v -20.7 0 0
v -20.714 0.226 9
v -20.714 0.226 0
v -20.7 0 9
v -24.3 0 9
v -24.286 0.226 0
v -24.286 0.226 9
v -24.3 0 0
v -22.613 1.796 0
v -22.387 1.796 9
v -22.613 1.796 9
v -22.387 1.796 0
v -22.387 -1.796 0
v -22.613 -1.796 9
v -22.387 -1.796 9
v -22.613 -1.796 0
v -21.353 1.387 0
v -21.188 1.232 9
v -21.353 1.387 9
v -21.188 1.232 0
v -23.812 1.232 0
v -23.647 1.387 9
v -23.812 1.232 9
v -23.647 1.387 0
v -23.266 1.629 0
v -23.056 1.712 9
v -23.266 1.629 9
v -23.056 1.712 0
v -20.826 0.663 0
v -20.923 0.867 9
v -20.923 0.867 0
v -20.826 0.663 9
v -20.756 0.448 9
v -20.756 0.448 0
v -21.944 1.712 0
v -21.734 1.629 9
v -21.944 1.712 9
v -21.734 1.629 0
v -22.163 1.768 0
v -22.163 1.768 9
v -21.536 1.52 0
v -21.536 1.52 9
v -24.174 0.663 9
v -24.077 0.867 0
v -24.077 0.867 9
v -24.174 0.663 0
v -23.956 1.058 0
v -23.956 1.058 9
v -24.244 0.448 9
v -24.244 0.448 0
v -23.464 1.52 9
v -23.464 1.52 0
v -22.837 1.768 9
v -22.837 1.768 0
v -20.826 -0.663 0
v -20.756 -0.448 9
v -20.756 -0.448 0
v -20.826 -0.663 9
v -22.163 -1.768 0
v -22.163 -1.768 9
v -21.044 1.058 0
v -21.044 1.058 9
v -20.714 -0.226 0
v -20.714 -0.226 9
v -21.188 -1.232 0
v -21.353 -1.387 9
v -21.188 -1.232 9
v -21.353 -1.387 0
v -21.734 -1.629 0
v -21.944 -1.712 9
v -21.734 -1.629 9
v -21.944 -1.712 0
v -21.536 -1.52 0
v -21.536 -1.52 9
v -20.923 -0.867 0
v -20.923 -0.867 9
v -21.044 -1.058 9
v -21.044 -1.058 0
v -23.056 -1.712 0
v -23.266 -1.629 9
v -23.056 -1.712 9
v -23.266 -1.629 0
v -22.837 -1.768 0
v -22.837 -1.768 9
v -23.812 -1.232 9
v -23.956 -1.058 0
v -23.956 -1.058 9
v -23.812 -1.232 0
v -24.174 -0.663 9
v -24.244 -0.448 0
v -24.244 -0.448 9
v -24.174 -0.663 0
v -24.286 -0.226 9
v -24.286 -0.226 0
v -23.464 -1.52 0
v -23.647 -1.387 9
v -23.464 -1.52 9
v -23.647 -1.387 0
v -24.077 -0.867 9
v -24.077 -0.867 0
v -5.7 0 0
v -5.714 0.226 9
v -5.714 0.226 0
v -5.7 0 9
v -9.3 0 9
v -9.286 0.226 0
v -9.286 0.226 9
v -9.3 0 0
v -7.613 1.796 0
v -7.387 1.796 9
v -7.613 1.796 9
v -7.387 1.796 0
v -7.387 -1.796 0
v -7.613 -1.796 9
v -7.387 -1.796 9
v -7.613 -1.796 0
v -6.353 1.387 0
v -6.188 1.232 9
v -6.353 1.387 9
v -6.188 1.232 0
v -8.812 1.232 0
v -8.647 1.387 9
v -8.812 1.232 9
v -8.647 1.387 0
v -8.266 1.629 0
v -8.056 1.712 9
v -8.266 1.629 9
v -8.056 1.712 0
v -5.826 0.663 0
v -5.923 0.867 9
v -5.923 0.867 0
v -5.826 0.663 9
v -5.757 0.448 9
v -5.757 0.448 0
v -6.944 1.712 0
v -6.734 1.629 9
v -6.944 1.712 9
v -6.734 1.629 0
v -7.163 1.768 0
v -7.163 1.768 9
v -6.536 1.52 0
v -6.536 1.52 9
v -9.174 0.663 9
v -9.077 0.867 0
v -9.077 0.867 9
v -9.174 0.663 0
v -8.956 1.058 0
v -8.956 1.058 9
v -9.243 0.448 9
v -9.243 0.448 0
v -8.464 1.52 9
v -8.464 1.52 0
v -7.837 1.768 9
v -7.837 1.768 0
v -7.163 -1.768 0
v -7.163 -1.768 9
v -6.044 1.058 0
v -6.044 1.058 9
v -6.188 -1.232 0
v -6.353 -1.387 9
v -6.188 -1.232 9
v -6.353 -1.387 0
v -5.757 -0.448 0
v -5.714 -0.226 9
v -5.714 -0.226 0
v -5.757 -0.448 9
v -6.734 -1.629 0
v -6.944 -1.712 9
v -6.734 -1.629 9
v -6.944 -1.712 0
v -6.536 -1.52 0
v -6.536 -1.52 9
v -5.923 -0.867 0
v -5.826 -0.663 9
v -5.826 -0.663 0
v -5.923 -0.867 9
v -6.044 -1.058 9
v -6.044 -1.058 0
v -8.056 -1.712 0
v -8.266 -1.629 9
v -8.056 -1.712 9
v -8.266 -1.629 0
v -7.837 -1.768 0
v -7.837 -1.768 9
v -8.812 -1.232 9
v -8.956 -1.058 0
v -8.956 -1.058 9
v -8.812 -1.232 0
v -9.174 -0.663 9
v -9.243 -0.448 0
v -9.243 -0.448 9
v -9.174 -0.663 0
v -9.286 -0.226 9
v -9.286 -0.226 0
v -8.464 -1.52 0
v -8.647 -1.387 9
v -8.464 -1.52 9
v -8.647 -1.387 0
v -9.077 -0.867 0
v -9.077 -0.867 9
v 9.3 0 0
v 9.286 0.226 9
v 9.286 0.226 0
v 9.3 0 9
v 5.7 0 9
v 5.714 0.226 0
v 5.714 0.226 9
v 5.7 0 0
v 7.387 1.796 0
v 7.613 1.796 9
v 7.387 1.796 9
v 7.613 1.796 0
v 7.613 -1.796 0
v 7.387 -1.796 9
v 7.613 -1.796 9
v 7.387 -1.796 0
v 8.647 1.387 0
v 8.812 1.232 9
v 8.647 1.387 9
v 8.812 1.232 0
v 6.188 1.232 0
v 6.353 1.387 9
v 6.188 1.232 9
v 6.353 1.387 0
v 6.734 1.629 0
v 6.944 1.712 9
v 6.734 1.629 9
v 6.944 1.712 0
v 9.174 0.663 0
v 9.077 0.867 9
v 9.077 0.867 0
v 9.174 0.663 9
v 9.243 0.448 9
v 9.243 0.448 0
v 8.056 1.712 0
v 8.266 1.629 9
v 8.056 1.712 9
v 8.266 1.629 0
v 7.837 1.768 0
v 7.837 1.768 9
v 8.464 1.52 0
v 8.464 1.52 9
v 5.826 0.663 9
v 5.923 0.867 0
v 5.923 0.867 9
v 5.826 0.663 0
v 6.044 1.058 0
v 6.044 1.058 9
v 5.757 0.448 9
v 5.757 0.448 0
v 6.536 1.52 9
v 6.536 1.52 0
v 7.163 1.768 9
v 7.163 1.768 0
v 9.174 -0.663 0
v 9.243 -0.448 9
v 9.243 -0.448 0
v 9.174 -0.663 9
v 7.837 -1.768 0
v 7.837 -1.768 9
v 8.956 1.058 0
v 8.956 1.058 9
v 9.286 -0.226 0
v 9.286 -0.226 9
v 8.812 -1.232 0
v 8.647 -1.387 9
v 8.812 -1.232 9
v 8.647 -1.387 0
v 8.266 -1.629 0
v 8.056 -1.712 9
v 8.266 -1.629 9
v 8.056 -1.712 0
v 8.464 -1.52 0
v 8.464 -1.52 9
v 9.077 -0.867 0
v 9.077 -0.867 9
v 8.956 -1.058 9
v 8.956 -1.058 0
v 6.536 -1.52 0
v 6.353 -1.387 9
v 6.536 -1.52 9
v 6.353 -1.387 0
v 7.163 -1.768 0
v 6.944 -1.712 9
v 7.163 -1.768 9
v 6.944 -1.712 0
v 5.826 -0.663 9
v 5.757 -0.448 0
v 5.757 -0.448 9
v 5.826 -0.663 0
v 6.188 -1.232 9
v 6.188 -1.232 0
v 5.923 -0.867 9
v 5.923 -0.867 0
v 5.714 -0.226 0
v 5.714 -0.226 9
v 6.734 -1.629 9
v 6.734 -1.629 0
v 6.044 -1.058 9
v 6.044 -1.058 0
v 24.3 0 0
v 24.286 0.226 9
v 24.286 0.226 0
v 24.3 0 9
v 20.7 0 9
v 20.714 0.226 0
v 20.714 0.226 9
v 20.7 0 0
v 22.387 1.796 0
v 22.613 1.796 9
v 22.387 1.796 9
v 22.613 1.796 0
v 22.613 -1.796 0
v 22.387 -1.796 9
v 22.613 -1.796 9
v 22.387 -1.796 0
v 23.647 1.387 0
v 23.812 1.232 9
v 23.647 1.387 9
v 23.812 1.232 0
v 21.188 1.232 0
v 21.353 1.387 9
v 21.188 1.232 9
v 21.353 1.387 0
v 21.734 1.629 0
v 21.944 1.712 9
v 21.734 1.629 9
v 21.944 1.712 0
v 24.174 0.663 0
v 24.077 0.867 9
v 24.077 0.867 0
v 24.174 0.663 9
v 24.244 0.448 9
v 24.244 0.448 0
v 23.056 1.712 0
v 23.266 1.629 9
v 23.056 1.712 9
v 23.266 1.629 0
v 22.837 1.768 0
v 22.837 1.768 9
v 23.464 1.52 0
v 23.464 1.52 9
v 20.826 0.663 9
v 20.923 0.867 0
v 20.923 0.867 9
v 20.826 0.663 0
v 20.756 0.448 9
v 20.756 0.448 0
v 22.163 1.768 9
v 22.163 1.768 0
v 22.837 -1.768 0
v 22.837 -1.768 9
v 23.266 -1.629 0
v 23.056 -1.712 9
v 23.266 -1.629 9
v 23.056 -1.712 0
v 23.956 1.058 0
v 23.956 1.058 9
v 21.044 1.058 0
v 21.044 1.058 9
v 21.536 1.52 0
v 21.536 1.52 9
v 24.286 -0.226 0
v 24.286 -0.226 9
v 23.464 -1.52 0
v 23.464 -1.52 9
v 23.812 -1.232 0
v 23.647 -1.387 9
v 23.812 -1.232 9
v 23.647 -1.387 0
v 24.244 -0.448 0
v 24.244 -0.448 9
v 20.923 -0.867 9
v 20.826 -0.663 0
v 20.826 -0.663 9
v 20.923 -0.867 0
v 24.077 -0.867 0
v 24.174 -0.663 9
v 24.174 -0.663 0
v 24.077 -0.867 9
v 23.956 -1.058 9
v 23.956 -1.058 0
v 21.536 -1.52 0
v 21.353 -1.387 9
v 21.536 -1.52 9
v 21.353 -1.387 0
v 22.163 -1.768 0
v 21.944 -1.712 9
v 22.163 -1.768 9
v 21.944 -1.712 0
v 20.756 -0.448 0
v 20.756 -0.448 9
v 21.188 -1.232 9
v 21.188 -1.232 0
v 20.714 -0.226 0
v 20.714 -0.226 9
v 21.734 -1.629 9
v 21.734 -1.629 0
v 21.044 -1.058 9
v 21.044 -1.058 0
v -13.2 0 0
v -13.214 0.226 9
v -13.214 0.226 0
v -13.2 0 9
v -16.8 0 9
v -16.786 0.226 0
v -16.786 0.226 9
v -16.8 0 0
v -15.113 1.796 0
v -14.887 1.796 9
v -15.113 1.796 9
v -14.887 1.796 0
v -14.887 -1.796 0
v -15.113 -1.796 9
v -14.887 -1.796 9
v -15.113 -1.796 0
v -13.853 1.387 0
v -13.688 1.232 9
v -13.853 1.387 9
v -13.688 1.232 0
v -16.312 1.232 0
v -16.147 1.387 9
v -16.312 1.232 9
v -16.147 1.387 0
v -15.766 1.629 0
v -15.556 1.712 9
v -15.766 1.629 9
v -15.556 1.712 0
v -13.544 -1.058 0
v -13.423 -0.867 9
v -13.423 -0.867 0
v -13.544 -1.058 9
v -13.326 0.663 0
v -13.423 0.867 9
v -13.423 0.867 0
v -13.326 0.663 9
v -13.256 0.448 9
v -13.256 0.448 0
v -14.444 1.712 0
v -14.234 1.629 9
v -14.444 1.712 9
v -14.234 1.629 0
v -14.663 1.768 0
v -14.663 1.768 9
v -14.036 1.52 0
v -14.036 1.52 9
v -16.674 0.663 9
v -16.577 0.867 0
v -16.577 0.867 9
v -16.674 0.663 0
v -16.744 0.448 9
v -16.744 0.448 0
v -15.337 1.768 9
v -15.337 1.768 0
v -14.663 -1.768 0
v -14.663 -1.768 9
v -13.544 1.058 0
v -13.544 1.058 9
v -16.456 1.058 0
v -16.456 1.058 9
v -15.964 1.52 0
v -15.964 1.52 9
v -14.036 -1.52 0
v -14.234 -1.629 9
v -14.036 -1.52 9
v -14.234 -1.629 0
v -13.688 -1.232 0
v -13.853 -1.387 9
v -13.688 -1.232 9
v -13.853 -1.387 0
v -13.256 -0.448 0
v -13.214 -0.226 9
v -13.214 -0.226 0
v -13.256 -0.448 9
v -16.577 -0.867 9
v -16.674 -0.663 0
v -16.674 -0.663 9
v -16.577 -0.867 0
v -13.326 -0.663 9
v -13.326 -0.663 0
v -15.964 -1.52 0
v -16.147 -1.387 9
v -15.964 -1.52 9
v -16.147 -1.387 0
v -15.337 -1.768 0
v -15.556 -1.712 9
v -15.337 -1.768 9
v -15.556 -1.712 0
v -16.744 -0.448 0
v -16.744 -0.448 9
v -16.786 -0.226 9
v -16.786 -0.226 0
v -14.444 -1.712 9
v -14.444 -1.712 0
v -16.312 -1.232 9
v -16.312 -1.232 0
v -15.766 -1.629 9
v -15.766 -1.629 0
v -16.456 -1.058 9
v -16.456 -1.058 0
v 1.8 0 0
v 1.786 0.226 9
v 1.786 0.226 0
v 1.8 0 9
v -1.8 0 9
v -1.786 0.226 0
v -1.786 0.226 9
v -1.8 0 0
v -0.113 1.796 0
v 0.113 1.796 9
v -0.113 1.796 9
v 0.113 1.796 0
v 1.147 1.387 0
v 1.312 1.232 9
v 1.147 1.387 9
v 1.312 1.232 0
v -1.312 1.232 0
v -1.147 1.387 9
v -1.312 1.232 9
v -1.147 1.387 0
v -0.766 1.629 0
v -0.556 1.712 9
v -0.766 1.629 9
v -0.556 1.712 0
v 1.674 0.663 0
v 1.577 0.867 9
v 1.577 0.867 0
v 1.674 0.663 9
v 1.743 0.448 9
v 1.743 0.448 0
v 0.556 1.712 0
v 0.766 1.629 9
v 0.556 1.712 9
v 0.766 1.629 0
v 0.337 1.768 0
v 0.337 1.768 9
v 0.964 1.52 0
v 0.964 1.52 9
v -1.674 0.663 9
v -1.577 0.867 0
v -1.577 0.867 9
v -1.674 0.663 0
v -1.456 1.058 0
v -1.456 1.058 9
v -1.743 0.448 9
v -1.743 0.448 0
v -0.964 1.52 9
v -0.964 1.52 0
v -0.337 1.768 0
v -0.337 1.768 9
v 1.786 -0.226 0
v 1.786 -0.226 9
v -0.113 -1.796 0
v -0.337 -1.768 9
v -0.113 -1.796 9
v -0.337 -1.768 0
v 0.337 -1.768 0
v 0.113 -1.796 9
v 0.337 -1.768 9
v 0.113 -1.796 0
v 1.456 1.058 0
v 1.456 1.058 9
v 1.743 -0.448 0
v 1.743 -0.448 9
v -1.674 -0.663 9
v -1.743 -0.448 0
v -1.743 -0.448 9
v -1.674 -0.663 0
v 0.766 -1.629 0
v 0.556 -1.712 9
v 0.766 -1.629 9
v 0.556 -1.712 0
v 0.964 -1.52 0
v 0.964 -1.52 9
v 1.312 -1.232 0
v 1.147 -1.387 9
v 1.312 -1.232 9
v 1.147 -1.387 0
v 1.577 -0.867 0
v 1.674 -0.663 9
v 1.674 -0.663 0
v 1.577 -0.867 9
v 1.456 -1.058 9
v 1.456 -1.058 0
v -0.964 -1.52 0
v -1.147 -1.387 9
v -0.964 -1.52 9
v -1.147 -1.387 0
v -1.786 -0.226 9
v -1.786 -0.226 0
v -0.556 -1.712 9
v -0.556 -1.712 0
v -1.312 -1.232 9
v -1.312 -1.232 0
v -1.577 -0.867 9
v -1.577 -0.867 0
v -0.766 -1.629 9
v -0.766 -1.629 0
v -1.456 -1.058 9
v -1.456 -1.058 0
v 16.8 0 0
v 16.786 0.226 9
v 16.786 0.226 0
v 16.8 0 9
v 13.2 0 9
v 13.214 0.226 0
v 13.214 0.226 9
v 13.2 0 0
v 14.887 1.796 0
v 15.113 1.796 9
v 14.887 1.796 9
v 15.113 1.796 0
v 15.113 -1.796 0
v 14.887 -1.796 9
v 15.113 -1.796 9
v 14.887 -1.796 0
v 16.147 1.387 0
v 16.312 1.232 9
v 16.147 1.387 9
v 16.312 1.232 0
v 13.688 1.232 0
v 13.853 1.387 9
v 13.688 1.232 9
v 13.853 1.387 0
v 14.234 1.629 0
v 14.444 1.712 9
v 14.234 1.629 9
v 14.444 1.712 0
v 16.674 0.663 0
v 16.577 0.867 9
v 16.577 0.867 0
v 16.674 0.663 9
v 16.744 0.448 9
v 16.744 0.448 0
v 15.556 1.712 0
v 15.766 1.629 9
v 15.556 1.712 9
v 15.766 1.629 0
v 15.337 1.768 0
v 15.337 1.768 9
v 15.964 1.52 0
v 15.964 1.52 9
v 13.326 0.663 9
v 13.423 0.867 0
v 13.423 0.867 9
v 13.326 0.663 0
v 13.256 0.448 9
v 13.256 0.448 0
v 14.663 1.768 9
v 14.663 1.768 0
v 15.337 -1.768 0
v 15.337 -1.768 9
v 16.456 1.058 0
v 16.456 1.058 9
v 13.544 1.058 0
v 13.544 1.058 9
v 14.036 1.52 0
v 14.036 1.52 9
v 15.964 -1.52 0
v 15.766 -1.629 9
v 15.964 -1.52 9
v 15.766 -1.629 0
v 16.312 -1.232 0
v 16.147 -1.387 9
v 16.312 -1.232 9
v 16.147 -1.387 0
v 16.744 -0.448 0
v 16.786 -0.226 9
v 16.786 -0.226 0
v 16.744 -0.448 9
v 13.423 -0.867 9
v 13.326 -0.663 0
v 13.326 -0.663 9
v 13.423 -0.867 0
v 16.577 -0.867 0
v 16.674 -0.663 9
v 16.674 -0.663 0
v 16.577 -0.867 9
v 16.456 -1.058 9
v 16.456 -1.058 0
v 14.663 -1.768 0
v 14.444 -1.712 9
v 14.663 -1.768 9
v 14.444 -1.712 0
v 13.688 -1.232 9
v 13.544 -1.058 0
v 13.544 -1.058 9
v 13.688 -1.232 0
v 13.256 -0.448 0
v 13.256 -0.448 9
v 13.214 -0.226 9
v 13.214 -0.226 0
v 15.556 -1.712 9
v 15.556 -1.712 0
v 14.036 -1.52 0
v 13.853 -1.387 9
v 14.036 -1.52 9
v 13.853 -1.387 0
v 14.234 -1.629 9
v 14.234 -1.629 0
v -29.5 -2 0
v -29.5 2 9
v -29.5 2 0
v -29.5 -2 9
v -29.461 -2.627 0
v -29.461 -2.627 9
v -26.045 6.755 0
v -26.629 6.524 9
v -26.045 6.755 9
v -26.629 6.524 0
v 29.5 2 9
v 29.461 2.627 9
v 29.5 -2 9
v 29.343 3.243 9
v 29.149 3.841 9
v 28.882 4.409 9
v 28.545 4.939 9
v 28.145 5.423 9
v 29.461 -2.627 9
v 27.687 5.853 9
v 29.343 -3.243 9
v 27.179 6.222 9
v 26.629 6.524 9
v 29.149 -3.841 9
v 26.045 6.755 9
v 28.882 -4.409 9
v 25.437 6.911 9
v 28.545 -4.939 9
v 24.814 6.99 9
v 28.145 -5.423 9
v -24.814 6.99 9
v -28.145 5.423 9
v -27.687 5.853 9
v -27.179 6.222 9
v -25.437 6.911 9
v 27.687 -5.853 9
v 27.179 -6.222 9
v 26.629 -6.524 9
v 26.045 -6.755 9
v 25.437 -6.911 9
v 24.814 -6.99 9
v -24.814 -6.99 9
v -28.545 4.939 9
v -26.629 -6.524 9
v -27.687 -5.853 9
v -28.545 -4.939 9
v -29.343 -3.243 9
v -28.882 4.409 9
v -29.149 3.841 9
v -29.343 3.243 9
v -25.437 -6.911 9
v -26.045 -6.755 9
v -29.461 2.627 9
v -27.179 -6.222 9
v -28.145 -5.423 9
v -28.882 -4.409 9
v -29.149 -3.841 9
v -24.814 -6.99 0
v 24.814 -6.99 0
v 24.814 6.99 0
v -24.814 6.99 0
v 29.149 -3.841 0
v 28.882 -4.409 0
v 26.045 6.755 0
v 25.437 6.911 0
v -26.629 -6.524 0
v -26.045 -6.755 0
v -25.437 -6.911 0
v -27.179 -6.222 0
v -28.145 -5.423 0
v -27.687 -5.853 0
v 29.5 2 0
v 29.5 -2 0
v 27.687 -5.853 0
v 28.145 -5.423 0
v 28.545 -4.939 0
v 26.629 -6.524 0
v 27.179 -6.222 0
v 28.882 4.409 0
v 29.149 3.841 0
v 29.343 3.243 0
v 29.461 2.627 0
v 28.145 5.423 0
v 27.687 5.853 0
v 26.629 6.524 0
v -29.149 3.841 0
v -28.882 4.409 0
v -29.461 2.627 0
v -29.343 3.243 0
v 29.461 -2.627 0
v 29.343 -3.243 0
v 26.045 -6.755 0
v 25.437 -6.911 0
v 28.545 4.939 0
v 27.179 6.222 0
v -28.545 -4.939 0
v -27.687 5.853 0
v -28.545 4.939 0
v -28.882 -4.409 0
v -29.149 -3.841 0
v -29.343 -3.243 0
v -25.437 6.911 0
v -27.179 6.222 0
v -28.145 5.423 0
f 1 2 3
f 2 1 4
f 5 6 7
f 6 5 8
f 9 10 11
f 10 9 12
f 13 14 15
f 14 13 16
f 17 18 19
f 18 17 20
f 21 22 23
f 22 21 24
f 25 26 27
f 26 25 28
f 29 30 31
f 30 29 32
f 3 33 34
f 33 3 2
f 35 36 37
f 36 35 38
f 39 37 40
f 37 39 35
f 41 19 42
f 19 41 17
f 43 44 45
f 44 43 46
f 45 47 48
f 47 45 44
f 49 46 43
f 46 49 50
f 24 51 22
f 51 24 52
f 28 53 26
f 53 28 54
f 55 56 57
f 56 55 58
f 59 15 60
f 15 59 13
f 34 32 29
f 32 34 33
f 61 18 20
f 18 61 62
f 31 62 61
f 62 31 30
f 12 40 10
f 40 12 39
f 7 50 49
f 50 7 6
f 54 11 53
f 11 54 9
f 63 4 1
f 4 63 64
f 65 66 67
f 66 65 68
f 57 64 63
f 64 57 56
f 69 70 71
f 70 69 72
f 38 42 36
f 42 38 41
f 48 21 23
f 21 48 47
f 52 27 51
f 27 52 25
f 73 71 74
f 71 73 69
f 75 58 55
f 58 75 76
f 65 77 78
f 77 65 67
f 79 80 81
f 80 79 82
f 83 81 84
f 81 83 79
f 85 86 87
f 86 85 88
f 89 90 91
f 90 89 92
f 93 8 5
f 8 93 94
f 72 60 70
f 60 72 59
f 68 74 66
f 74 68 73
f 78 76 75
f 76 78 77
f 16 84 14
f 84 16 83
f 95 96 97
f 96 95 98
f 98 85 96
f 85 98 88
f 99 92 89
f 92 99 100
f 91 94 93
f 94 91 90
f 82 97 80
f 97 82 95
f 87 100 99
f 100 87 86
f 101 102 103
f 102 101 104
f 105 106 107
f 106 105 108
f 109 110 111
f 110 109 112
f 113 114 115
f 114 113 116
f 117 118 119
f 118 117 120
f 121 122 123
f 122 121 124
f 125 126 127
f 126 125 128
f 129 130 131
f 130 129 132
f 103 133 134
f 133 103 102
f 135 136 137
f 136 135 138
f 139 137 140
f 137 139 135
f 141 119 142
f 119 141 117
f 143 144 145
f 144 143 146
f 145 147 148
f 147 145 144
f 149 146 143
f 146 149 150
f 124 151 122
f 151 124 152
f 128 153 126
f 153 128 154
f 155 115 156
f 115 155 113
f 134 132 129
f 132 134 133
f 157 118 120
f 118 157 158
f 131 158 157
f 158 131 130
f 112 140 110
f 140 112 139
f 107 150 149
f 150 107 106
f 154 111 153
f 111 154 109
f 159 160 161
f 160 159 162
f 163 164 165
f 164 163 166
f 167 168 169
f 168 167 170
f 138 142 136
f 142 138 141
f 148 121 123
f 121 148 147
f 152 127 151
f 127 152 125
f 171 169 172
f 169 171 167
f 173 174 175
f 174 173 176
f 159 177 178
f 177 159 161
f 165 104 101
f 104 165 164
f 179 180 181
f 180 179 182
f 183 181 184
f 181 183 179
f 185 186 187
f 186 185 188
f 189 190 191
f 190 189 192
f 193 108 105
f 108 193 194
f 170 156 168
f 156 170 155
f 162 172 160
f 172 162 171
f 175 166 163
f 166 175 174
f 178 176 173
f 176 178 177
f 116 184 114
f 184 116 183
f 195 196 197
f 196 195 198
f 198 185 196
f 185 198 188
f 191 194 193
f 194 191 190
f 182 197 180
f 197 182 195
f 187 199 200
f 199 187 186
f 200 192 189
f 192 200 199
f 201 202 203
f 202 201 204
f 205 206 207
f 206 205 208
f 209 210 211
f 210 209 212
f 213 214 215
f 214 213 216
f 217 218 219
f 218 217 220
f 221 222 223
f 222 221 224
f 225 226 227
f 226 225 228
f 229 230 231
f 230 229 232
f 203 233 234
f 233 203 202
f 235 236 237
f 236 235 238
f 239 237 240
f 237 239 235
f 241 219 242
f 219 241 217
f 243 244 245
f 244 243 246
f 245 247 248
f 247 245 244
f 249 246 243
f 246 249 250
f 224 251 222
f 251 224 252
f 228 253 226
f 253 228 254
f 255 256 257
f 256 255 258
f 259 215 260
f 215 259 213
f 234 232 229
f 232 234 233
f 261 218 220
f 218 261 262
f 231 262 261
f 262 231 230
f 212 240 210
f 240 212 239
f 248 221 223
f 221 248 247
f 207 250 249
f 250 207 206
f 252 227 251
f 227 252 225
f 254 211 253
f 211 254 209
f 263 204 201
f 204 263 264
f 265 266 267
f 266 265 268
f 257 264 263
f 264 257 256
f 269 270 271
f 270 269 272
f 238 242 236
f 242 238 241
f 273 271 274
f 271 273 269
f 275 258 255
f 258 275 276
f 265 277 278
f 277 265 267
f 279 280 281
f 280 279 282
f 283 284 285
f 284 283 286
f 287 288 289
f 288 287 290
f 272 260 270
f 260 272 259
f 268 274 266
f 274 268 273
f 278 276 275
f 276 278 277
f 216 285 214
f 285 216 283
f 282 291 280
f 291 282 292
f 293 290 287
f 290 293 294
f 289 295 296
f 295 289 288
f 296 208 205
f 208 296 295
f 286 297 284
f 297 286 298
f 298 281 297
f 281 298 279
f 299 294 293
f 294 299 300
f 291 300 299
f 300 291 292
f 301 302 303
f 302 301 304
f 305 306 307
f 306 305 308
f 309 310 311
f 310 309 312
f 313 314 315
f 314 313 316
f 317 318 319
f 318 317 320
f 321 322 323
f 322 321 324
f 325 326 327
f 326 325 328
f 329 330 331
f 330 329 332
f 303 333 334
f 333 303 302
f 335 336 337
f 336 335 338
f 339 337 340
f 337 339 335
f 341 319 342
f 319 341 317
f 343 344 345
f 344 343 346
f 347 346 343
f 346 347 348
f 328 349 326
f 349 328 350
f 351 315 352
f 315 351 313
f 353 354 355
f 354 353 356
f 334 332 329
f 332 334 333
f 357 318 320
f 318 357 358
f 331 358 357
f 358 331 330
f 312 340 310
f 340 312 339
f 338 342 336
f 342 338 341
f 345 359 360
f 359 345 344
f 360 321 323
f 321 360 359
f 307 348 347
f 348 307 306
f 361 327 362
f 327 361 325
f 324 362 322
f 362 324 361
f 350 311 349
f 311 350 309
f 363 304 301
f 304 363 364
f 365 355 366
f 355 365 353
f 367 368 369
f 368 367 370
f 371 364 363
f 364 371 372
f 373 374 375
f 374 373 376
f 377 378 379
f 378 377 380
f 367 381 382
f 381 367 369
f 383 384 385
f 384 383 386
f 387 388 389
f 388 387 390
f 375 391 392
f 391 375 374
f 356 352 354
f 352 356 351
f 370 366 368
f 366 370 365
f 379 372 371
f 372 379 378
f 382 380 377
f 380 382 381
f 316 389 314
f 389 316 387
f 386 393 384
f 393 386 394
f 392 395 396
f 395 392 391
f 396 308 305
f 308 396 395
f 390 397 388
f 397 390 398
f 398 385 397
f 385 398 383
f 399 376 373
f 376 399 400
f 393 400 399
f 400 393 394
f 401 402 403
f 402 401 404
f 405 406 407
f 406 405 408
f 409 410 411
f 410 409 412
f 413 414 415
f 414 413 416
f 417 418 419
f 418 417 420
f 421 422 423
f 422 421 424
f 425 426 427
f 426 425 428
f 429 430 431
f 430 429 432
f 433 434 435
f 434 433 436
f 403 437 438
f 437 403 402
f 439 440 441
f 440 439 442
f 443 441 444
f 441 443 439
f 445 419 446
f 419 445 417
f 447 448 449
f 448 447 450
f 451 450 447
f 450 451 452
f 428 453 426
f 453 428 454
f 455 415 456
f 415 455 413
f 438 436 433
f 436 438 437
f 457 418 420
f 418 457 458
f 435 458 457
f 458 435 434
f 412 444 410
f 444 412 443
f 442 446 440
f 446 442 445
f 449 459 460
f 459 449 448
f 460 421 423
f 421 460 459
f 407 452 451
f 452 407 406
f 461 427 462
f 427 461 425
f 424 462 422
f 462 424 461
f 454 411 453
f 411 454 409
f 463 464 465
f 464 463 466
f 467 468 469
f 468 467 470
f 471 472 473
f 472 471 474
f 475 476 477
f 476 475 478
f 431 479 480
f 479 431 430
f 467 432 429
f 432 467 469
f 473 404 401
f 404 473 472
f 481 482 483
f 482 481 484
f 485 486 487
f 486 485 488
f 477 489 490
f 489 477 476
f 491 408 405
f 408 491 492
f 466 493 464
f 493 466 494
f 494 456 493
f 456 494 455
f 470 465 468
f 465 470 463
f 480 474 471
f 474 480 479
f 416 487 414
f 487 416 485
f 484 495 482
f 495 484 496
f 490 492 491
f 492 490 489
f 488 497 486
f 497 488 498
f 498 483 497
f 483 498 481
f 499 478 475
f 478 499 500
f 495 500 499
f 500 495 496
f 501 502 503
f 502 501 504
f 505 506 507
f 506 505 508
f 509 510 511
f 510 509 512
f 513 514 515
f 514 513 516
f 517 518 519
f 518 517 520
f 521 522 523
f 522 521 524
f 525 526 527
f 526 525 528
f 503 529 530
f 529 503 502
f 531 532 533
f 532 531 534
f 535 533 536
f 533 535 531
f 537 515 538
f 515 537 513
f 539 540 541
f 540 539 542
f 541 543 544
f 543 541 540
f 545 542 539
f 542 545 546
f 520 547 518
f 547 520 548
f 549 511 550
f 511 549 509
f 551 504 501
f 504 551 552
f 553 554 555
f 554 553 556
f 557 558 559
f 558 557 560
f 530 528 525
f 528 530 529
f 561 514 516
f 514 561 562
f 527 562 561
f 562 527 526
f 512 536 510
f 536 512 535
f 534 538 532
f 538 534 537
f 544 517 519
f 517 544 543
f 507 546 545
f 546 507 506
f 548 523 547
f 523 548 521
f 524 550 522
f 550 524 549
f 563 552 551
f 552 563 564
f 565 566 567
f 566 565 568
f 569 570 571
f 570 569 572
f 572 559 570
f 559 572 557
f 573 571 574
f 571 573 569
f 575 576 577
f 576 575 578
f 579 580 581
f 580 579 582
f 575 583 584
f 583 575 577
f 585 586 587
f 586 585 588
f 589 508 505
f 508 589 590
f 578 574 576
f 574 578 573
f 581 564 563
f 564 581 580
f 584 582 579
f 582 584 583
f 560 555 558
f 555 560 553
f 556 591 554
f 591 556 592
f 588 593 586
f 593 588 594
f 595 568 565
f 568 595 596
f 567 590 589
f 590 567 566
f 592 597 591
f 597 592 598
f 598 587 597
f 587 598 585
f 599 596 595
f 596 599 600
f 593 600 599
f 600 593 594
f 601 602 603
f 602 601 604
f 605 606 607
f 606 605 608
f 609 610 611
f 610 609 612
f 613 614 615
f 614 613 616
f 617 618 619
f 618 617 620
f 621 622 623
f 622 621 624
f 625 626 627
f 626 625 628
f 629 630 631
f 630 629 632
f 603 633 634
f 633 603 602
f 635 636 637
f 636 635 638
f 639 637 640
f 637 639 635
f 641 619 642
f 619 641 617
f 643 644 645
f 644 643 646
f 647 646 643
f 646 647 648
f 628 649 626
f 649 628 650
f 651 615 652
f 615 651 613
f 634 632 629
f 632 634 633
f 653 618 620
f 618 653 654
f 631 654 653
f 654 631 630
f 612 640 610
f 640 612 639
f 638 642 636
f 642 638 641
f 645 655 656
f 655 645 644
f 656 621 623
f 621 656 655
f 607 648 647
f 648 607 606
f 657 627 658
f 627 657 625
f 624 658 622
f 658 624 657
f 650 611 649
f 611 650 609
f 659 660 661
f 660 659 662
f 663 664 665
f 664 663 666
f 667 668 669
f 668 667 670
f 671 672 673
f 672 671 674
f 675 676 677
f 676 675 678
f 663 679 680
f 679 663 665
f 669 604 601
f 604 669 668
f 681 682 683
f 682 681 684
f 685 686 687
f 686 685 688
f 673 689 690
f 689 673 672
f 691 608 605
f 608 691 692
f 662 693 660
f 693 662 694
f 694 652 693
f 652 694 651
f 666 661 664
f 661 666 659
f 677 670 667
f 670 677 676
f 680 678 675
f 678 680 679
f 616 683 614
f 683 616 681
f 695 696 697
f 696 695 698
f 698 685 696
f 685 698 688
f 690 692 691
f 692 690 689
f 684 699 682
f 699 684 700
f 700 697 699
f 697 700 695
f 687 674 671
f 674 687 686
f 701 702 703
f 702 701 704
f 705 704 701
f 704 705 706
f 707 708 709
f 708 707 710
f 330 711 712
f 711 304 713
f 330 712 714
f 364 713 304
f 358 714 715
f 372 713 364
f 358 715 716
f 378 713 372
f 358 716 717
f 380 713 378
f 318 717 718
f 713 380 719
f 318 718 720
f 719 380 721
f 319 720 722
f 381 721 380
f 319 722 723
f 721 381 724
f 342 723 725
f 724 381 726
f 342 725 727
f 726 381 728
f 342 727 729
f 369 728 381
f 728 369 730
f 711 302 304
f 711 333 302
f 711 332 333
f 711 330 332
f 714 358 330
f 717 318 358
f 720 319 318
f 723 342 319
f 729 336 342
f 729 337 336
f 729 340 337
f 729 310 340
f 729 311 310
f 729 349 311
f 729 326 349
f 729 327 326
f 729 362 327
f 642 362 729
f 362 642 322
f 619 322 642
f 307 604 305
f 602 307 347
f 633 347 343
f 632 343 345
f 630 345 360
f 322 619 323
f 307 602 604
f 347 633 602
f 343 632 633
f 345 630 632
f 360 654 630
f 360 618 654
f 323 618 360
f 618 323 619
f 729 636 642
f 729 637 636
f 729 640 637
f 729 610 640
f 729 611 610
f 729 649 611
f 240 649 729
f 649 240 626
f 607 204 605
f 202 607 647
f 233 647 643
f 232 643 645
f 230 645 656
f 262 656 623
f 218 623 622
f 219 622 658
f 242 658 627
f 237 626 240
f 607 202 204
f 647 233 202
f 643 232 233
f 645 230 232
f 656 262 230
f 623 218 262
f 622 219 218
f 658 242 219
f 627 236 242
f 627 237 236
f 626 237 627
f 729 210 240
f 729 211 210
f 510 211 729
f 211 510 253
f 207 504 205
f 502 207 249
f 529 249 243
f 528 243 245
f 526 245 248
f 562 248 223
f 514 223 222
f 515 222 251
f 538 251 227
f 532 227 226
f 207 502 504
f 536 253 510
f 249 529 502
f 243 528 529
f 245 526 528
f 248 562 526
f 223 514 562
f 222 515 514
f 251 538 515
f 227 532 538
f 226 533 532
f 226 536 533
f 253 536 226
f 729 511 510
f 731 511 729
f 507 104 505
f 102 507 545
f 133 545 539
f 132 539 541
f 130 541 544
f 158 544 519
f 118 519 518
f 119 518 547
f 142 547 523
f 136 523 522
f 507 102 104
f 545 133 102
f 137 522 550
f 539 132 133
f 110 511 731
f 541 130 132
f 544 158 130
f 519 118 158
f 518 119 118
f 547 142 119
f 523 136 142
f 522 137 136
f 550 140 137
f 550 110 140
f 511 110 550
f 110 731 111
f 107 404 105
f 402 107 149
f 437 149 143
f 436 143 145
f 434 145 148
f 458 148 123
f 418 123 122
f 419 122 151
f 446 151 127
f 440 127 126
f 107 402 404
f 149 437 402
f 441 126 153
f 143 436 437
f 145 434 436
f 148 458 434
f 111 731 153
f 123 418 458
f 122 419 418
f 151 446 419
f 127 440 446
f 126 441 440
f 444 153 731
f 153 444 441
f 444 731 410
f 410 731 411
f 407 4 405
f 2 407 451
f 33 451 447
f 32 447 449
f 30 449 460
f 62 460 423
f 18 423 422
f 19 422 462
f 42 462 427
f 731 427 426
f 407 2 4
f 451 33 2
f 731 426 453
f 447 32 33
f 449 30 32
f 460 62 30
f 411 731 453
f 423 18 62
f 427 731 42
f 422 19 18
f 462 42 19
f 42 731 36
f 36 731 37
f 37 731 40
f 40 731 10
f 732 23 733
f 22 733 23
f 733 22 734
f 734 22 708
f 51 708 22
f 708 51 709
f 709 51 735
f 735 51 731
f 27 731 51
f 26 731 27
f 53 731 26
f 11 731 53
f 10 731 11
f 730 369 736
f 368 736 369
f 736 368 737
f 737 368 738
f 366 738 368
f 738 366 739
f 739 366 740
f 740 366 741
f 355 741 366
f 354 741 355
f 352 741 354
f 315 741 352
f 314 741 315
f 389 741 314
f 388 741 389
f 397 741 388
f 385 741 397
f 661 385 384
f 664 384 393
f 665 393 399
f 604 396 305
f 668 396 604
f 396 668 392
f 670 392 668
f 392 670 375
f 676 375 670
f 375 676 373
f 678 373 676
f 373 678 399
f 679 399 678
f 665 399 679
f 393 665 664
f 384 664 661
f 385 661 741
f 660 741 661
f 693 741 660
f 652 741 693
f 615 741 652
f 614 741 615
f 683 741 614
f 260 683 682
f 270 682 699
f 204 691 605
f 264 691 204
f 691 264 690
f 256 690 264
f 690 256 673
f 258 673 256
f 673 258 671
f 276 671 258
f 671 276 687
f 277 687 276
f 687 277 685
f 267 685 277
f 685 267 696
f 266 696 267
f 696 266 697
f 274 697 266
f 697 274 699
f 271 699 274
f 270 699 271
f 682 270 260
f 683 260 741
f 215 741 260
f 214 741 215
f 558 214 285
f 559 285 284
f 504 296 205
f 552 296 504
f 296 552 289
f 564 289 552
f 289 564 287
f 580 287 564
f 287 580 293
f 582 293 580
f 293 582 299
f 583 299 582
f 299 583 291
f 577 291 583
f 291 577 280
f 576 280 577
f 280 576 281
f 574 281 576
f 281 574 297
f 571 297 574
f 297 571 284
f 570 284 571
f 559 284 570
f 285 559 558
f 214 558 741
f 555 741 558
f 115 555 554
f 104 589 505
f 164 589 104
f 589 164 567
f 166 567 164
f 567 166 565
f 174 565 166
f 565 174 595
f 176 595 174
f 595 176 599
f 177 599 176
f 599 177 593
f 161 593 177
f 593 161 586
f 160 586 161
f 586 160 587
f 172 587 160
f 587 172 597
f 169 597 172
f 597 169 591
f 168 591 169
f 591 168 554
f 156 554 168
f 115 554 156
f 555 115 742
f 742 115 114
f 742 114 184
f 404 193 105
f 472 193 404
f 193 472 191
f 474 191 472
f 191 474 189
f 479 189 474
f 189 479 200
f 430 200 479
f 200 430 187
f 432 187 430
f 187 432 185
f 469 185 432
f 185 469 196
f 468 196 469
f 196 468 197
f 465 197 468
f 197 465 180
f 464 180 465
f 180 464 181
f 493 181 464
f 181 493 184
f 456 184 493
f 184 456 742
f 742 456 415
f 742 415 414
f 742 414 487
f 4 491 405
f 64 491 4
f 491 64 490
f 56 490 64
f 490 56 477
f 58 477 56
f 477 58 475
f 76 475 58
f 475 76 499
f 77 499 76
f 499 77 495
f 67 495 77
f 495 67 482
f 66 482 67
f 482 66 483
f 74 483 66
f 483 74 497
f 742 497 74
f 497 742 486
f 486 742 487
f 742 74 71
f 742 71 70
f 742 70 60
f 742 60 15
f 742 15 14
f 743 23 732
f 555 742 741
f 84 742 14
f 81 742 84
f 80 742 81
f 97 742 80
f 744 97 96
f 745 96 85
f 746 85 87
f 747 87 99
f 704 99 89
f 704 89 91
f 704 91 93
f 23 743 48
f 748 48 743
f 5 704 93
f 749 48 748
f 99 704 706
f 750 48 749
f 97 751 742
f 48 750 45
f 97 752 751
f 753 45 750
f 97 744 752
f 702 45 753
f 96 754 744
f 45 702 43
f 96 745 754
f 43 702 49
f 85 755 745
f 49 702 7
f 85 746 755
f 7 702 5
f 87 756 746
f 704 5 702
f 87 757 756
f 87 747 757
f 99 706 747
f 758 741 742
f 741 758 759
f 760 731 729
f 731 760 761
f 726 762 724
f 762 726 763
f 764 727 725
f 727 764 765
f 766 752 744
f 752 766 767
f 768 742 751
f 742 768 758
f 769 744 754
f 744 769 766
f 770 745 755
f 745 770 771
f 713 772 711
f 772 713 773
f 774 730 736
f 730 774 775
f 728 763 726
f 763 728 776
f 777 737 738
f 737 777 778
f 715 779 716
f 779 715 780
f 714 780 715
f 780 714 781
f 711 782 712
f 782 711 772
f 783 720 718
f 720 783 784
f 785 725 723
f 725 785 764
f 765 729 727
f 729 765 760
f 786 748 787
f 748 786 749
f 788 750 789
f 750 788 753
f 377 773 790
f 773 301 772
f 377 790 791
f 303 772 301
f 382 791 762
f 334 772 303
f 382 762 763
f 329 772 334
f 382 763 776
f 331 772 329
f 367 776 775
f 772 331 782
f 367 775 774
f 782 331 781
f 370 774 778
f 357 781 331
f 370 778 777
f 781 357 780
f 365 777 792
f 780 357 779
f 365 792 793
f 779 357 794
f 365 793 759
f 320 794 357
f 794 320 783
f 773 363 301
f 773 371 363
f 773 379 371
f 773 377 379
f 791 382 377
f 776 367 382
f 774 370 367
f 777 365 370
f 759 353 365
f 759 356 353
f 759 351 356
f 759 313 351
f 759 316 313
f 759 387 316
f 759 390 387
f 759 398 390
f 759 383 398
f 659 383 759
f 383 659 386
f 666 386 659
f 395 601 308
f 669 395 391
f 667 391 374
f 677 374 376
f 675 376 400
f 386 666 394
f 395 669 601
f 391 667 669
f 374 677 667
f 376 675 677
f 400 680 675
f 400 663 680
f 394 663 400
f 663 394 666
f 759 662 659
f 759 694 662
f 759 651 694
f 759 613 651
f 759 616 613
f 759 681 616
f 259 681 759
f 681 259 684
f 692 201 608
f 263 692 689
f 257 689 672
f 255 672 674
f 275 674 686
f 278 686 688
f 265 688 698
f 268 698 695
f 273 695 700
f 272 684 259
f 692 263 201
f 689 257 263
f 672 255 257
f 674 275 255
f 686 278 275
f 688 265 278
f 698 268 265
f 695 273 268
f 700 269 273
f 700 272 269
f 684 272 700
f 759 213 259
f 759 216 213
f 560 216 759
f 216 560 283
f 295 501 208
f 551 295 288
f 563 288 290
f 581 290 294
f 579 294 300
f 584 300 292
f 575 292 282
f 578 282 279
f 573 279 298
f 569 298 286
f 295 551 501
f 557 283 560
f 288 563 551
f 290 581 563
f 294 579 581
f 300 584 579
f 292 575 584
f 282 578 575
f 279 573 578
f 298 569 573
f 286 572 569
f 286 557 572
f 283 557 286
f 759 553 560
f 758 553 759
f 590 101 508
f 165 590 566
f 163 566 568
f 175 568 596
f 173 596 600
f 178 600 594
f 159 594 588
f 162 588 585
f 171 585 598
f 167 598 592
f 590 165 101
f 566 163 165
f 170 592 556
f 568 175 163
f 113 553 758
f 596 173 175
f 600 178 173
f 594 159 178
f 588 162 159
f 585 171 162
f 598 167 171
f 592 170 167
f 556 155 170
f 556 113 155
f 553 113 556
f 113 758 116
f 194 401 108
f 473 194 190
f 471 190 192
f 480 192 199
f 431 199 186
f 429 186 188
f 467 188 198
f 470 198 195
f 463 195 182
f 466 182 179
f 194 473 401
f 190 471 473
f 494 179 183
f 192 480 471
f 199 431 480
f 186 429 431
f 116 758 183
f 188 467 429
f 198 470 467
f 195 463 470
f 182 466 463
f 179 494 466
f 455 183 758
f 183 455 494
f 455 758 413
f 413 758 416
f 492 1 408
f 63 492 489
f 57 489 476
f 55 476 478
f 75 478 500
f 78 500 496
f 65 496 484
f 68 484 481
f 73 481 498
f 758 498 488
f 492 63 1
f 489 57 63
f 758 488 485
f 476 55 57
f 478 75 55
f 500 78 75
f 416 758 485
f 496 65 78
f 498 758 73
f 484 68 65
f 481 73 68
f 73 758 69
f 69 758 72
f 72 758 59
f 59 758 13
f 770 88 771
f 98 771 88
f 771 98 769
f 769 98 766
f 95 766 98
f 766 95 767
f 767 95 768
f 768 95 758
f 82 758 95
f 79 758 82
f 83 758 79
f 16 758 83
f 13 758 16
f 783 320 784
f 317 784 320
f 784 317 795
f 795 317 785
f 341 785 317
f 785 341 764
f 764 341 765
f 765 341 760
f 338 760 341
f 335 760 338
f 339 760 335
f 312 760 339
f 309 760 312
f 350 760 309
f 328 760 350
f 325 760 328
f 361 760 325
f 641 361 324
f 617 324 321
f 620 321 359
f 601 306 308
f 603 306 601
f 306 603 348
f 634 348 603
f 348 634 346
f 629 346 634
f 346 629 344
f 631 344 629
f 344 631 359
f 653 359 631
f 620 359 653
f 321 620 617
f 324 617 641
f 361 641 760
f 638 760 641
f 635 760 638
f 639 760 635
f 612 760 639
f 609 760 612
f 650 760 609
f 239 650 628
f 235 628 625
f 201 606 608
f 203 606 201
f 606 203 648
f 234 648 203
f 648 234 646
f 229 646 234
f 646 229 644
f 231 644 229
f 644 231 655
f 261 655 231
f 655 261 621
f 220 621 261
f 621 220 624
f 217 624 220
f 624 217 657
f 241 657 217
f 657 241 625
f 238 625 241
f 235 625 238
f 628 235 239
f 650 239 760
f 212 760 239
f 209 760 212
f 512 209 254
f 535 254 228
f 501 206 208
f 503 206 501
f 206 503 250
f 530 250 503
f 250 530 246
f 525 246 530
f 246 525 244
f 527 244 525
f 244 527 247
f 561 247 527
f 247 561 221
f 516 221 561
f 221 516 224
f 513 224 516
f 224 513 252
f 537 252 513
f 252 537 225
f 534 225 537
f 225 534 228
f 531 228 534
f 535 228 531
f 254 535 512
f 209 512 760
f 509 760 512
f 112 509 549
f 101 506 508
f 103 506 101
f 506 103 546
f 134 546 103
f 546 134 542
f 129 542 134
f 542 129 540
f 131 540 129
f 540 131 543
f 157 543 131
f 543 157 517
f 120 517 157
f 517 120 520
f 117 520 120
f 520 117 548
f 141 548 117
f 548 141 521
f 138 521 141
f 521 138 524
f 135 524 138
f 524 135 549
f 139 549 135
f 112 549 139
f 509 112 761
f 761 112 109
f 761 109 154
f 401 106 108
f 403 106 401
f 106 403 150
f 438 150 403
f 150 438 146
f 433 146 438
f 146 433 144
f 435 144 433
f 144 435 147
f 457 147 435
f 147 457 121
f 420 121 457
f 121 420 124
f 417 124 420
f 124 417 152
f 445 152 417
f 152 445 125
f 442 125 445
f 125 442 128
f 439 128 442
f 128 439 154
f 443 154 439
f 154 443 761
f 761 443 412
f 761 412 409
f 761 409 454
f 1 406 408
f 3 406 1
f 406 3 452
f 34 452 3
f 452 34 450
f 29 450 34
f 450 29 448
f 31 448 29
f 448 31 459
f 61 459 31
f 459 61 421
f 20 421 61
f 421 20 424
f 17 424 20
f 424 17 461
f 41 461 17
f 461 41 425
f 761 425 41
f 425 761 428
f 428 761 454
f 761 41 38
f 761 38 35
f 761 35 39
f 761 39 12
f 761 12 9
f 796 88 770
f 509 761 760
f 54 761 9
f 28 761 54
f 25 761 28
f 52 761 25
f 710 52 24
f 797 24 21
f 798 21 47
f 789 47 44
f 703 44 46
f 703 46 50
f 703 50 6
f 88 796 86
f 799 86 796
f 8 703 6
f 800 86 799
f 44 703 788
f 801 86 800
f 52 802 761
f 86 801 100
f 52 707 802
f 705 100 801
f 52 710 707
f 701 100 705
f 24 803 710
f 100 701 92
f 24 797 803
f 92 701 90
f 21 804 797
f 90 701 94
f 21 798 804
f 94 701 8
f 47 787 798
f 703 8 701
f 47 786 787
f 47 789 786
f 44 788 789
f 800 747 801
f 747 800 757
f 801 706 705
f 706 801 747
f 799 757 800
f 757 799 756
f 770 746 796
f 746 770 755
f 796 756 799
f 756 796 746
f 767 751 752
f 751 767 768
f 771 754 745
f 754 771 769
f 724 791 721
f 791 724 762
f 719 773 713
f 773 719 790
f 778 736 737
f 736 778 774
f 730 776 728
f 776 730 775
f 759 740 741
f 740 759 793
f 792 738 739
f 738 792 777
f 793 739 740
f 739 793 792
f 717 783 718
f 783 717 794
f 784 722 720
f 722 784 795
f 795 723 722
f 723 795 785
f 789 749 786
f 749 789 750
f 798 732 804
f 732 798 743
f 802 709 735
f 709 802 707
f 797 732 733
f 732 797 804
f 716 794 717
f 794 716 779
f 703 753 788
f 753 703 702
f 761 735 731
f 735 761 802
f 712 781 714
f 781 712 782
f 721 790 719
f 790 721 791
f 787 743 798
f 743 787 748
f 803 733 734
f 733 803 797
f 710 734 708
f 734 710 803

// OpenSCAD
$fn = 50;


difference() {
	union() {
		hull() {
			translate(v = [-24.5000000000, 2.0000000000, 0]) {
				cylinder(h = 9, r = 5);
			}
			translate(v = [24.5000000000, 2.0000000000, 0]) {
				cylinder(h = 9, r = 5);
			}
			translate(v = [-24.5000000000, -2.0000000000, 0]) {
				cylinder(h = 9, r = 5);
			}
			translate(v = [24.5000000000, -2.0000000000, 0]) {
				cylinder(h = 9, r = 5);
			}
		}
	}
	union() {
		translate(v = [-22.5000000000, 0.0000000000, 0]) {
			translate(v = [0, 0, -100]) {
				cylinder(h = 200, r = 1.8000000000);
			}
		}
		translate(v = [-7.5000000000, 0.0000000000, 0]) {
			translate(v = [0, 0, -100]) {
				cylinder(h = 200, r = 1.8000000000);
			}
		}
		translate(v = [7.5000000000, 0.0000000000, 0]) {
			translate(v = [0, 0, -100]) {
				cylinder(h = 200, r = 1.8000000000);
			}
		}
		translate(v = [22.5000000000, 0.0000000000, 0]) {
			translate(v = [0, 0, -100]) {
				cylinder(h = 200, r = 1.8000000000);
			}
		}
		translate(v = [-22.5000000000, 0.0000000000, 0]) {
			translate(v = [0, 0, -100]) {
				cylinder(h = 200, r = 1.8000000000);
			}
		}
		translate(v = [-15.0000000000, 0.0000000000, 0]) {
			translate(v = [0, 0, -100]) {
				cylinder(h = 200, r = 1.8000000000);
			}
		}
		translate(v = [-7.5000000000, 0.0000000000, 0]) {
			translate(v = [0, 0, -100]) {
				cylinder(h = 200, r = 1.8000000000);
			}
		}
		translate(v = [0, 0, -100]) {
			cylinder(h = 200, r = 1.8000000000);
		}
		translate(v = [7.5000000000, 0.0000000000, 0]) {
			translate(v = [0, 0, -100]) {
				cylinder(h = 200, r = 1.8000000000);
			}
		}
		translate(v = [15.0000000000, 0.0000000000, 0]) {
			translate(v = [0, 0, -100]) {
				cylinder(h = 200, r = 1.8000000000);
			}
		}
		translate(v = [22.5000000000, 0.0000000000, 0]) {
			translate(v = [0, 0, -100]) {
				cylinder(h = 200, r = 1.8000000000);
			}
		}
	}
}
